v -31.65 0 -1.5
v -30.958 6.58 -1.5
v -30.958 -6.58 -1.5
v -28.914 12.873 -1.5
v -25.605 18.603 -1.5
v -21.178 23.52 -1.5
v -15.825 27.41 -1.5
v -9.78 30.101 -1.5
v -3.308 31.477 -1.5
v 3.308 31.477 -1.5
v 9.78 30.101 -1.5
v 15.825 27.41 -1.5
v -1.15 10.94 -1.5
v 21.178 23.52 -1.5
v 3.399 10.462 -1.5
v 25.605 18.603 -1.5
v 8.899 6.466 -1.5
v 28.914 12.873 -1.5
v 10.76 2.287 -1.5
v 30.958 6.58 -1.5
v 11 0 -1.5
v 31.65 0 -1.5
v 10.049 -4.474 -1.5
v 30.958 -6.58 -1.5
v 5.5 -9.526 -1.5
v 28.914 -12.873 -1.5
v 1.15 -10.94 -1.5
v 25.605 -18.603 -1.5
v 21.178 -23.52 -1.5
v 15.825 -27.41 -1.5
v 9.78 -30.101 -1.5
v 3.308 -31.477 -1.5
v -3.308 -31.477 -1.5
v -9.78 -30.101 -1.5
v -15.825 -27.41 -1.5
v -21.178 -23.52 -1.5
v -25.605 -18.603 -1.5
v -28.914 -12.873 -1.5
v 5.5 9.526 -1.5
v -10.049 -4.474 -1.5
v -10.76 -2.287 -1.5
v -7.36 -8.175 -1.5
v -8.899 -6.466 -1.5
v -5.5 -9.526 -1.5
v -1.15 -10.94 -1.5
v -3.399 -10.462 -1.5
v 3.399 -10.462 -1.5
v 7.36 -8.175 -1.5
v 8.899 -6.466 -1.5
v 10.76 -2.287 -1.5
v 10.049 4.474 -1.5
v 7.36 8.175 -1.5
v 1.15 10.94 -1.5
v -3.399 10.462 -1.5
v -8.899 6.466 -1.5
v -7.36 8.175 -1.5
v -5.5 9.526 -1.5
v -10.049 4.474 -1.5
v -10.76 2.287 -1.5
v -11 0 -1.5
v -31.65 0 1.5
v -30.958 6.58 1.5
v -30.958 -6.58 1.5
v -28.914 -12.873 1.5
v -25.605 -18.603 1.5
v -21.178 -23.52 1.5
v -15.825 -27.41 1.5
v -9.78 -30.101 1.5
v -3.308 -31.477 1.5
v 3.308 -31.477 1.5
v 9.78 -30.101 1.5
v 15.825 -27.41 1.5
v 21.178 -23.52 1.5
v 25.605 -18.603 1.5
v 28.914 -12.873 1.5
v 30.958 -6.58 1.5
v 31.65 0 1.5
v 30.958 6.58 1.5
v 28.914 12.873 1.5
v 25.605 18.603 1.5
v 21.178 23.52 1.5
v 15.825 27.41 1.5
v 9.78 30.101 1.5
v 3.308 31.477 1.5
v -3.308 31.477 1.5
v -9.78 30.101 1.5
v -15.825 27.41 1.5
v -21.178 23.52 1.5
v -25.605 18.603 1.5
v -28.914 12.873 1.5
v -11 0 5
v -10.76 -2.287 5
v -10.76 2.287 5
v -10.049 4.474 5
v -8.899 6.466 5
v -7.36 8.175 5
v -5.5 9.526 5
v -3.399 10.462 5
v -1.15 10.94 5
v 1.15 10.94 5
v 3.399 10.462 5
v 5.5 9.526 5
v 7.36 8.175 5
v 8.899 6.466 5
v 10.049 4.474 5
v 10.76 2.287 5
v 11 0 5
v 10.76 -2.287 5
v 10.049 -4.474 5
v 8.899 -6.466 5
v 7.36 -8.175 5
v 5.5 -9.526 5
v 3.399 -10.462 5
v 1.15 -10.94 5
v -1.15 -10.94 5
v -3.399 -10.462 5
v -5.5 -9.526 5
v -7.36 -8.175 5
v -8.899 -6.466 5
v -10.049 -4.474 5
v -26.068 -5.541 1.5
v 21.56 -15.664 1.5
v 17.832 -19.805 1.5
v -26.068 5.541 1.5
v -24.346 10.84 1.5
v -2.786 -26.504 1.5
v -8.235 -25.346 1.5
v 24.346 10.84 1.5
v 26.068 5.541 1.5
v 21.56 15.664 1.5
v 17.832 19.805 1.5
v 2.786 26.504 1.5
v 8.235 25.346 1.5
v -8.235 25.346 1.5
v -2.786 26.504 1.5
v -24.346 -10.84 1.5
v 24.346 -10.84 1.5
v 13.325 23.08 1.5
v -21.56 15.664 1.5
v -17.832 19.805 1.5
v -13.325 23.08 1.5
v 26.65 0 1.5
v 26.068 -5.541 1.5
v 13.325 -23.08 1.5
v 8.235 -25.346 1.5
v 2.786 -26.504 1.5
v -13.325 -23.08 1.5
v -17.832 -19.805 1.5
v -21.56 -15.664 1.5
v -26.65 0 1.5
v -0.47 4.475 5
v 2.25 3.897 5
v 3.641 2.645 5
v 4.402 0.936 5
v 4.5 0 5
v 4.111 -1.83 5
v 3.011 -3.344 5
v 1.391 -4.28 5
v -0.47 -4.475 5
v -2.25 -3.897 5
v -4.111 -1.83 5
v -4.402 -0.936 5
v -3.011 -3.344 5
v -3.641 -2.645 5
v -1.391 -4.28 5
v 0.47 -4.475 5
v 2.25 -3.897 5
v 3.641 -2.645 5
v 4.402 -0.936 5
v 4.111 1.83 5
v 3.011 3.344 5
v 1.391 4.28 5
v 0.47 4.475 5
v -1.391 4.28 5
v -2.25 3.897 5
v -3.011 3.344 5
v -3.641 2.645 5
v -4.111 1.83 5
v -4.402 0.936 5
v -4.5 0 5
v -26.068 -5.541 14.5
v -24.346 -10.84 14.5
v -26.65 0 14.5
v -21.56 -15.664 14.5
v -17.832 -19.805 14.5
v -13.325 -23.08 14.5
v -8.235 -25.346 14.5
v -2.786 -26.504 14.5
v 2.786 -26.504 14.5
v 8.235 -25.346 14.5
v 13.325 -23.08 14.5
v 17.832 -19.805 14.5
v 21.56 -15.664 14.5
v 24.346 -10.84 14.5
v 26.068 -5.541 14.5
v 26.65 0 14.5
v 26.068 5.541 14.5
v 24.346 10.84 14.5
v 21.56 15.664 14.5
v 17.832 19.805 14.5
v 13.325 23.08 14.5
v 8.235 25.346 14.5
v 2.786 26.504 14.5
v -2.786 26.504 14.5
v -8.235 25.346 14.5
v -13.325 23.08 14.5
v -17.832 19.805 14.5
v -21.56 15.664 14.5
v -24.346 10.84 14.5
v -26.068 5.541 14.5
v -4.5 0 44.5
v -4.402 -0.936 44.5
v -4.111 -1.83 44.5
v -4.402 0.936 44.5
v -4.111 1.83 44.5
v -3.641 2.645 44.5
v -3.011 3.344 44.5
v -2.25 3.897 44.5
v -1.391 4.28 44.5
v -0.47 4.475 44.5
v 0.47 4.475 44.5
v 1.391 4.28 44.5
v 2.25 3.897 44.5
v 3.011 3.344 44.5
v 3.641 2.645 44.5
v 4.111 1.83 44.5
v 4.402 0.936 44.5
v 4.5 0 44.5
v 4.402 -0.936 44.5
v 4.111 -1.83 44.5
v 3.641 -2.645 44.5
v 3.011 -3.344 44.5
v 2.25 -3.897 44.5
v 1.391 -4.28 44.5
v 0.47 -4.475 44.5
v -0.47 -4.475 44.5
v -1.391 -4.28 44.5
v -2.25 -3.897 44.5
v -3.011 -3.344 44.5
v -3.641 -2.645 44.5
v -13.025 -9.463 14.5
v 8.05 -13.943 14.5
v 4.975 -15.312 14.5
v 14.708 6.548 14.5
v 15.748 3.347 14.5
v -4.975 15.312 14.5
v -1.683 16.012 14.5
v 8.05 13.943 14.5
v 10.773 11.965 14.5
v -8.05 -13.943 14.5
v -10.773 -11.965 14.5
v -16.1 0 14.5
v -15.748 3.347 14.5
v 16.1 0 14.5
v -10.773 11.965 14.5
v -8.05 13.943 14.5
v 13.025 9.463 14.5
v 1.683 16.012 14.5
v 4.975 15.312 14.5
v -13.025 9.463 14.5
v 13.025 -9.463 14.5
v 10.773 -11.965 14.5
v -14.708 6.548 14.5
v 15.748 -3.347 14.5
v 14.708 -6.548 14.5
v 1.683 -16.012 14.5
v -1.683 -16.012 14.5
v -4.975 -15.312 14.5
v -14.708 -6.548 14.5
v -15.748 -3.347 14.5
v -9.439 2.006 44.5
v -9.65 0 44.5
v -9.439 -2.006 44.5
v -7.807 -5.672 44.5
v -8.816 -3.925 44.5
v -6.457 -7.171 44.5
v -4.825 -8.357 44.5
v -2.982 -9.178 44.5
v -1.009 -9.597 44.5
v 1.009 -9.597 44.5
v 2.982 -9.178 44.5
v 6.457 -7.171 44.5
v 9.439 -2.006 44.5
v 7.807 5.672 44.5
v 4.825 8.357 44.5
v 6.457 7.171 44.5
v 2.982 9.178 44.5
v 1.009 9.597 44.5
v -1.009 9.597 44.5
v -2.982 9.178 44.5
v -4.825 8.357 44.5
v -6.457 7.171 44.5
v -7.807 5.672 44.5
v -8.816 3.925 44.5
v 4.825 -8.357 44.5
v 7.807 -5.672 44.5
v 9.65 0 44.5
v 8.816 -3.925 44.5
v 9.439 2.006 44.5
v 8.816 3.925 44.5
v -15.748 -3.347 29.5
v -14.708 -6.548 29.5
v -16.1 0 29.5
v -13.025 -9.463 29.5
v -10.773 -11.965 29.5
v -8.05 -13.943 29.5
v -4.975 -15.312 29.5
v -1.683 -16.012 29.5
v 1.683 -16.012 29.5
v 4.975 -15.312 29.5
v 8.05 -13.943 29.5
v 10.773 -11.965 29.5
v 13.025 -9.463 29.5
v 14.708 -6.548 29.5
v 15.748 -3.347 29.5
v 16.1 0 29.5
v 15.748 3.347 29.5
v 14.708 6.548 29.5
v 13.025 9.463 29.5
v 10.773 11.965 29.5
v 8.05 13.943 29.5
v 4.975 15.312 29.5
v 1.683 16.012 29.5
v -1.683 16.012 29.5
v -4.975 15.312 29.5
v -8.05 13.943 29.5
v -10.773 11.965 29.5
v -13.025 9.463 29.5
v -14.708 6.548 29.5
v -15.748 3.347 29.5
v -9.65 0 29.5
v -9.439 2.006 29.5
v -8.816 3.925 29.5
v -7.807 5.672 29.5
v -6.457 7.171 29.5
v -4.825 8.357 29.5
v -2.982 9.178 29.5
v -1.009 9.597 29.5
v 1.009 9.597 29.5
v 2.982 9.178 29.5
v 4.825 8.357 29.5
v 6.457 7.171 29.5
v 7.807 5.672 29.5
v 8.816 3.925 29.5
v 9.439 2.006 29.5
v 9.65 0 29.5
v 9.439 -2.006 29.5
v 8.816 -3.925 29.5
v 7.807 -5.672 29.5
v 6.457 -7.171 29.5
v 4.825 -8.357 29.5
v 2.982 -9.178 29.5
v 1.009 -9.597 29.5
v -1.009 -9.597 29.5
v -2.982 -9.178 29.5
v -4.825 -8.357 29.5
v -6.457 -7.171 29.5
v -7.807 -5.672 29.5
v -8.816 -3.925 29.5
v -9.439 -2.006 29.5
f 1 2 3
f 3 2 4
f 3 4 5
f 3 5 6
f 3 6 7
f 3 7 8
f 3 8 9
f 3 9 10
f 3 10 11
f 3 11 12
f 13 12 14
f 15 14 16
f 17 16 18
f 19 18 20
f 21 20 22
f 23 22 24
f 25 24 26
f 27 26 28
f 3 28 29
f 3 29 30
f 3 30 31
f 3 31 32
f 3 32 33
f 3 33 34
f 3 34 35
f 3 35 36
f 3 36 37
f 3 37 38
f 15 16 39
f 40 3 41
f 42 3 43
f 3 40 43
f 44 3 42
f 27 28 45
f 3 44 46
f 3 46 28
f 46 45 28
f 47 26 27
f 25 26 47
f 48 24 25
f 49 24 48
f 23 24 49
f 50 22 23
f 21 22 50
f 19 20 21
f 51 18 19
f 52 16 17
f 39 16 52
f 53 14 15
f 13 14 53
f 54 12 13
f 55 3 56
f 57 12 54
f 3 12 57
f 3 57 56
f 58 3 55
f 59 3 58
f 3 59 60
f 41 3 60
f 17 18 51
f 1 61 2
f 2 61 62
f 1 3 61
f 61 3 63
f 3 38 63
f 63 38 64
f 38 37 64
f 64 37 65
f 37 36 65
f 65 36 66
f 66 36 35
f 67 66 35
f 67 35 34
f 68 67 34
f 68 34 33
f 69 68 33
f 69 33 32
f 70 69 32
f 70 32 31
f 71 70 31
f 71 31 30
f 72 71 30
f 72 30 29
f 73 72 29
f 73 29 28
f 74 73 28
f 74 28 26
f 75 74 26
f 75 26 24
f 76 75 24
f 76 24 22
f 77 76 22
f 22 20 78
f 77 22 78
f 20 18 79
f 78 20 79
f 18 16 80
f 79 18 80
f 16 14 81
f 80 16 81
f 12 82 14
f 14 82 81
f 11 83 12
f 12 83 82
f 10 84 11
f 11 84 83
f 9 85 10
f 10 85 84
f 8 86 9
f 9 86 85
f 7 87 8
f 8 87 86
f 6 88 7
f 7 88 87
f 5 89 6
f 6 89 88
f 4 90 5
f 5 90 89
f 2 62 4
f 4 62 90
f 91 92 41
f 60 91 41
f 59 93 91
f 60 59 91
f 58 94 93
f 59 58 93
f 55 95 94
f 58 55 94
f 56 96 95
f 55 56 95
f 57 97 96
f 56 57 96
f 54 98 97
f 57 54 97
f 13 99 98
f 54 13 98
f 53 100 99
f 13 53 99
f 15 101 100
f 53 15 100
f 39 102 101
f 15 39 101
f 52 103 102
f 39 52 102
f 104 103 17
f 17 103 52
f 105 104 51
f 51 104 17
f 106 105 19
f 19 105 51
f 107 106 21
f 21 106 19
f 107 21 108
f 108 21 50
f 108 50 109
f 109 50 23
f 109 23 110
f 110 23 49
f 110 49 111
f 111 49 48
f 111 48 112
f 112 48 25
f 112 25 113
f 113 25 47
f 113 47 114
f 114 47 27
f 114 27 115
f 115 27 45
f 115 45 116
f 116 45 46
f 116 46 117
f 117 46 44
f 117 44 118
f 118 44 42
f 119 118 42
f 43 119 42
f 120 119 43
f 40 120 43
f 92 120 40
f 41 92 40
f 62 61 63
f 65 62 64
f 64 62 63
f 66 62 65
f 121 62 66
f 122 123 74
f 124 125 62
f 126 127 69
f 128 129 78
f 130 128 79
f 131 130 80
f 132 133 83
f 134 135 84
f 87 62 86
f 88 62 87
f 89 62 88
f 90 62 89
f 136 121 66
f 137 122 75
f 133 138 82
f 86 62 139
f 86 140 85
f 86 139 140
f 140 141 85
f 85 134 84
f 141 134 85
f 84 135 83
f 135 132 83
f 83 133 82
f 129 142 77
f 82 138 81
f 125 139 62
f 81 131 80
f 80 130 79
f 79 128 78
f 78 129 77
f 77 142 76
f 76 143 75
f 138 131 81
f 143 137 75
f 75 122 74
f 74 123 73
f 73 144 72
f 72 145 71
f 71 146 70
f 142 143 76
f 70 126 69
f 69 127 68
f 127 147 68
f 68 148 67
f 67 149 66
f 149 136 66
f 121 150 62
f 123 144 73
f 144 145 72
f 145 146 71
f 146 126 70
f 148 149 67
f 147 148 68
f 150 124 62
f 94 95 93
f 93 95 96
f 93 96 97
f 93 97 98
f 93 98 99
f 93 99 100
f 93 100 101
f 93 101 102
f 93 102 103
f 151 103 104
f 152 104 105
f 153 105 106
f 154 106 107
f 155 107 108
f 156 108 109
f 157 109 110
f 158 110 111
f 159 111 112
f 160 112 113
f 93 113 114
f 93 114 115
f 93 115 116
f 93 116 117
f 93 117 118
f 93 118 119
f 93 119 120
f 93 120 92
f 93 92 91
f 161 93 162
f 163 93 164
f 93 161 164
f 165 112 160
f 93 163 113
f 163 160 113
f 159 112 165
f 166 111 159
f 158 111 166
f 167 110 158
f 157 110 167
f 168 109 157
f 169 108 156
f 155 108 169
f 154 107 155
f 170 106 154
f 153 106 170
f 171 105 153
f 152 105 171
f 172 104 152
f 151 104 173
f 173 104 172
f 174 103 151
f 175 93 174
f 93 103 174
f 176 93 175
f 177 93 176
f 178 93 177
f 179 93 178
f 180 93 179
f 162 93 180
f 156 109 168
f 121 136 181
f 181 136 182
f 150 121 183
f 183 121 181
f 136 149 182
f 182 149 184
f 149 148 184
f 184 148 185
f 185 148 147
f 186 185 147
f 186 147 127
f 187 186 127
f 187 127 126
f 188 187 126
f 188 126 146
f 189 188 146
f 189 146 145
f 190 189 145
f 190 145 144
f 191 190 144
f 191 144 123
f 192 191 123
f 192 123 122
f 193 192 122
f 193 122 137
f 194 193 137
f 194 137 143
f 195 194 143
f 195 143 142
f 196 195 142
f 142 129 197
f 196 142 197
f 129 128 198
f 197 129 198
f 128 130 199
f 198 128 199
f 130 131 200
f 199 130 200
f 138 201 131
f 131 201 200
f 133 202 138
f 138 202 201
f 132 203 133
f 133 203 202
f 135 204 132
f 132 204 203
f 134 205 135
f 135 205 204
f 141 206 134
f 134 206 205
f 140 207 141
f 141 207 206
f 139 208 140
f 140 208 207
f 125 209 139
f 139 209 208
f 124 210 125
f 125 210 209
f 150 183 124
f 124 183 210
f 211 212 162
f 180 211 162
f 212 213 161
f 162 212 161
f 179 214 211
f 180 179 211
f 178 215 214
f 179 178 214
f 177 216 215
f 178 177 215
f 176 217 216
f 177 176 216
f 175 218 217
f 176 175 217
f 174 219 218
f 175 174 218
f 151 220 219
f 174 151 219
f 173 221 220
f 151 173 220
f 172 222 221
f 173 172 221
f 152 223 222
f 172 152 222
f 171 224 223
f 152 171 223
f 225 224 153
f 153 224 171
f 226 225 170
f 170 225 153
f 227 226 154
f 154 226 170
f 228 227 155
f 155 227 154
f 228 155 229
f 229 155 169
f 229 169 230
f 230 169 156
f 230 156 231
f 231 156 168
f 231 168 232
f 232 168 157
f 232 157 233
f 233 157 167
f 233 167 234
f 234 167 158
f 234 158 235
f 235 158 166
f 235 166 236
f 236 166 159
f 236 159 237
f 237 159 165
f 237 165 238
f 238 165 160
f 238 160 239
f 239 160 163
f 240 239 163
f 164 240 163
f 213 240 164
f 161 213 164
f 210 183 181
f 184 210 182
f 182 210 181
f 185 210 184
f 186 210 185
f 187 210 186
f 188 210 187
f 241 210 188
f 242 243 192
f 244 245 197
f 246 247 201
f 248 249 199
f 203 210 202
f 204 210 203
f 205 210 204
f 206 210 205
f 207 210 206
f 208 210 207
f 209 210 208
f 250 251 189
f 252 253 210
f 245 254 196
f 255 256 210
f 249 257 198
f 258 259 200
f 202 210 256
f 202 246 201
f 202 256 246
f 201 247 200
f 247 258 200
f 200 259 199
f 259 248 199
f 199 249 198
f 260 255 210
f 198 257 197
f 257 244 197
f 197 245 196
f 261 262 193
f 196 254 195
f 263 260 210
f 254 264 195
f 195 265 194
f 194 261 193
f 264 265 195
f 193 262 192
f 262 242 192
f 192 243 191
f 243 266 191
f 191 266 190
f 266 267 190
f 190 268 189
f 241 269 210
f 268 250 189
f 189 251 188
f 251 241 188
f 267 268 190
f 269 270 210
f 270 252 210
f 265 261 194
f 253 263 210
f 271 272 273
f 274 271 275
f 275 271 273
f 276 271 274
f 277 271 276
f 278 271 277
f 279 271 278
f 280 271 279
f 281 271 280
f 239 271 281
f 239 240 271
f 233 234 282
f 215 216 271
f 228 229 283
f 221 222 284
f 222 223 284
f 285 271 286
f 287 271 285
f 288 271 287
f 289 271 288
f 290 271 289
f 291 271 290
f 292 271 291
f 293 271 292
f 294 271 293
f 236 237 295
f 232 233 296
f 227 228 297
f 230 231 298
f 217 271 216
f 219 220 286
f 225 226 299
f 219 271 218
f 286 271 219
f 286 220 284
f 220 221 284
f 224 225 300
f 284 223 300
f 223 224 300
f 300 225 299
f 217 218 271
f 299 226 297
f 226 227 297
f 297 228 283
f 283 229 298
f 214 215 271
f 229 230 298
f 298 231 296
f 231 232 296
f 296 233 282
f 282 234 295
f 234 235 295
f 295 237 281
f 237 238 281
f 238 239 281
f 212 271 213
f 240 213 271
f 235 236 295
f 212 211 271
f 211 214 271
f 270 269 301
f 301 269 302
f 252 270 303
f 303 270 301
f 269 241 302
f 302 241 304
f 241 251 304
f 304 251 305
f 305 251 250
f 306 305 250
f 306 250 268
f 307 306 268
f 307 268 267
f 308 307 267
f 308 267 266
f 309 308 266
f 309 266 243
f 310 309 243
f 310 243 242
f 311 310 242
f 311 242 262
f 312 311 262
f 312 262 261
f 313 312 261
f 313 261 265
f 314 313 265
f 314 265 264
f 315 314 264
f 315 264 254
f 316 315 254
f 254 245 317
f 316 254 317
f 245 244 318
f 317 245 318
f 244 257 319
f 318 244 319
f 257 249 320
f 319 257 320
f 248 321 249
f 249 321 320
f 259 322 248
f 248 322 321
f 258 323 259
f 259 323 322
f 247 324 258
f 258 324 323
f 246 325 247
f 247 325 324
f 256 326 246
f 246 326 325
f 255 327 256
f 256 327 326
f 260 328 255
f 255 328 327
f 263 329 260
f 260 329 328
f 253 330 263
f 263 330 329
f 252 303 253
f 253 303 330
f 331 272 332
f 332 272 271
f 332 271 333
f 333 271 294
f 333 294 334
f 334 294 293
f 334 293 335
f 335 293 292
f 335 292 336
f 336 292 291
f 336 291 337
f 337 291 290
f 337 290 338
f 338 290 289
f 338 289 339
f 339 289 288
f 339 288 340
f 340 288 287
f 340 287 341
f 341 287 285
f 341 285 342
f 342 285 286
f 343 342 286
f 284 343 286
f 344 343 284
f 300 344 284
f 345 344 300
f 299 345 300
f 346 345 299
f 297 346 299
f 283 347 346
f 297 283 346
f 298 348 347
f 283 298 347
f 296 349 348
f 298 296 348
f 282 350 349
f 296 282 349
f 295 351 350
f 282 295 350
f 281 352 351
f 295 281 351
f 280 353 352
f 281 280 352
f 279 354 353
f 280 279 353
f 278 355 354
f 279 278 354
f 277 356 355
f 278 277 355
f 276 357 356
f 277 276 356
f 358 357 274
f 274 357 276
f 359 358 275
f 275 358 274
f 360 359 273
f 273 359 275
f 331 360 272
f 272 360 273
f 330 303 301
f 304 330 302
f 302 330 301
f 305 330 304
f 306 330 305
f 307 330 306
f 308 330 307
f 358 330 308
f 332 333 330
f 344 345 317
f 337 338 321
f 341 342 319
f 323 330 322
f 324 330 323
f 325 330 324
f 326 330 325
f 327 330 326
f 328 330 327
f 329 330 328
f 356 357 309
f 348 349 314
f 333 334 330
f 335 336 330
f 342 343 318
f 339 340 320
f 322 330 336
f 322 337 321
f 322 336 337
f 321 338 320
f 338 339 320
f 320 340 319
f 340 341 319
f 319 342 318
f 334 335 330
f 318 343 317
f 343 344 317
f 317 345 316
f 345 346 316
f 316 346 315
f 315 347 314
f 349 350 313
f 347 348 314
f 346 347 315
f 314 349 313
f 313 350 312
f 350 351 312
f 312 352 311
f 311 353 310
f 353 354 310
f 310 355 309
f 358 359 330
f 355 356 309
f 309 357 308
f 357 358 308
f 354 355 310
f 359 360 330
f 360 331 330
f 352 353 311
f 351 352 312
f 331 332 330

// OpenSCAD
//diameters of spool holes
big_hole = 53.3;
medium_hole = 32.2;
small_hole= 19.3;

bearing_hole= 22;//608
bearing_depth = 7;//608
spool_depth =15 ;//depth of each teir
axle_diameter = 8;//diameter of axle hole.



module rim(){
cylinder(r=big_hole/2 + 5,h=3,center=true,$fs = 0.01);
}

module big(){
translate([0,0,spool_depth/2-1])cylinder(r=big_hole/2,h=spool_depth+1,center=true,$fs = 0.01);
}

module  mid(){
translate([0,0,((spool_depth/2)*3)-1])cylinder(r=medium_hole/2,h=spool_depth+1,center=true,$fs = 0.01);
}

module small(){
translate([0,0,((spool_depth/2)*5)-1])cylinder(r=small_hole/2,h=spool_depth+1,center=true,$fs = 0.01);
}

module axle(){
cylinder(r=axle_diameter/2 +.5,h=spool_depth * 8,center=true,$fs = 0.01);
}

module bearing(){
translate([0,0,bearing_depth/2 -2])cylinder(r=bearing_hole/2,h=bearing_depth,center=true,$fs = 0.01);
}
difference(){

		union(){
			rim();
			big();
			mid();
			small();
		}
		axle();
		bearing();
}
